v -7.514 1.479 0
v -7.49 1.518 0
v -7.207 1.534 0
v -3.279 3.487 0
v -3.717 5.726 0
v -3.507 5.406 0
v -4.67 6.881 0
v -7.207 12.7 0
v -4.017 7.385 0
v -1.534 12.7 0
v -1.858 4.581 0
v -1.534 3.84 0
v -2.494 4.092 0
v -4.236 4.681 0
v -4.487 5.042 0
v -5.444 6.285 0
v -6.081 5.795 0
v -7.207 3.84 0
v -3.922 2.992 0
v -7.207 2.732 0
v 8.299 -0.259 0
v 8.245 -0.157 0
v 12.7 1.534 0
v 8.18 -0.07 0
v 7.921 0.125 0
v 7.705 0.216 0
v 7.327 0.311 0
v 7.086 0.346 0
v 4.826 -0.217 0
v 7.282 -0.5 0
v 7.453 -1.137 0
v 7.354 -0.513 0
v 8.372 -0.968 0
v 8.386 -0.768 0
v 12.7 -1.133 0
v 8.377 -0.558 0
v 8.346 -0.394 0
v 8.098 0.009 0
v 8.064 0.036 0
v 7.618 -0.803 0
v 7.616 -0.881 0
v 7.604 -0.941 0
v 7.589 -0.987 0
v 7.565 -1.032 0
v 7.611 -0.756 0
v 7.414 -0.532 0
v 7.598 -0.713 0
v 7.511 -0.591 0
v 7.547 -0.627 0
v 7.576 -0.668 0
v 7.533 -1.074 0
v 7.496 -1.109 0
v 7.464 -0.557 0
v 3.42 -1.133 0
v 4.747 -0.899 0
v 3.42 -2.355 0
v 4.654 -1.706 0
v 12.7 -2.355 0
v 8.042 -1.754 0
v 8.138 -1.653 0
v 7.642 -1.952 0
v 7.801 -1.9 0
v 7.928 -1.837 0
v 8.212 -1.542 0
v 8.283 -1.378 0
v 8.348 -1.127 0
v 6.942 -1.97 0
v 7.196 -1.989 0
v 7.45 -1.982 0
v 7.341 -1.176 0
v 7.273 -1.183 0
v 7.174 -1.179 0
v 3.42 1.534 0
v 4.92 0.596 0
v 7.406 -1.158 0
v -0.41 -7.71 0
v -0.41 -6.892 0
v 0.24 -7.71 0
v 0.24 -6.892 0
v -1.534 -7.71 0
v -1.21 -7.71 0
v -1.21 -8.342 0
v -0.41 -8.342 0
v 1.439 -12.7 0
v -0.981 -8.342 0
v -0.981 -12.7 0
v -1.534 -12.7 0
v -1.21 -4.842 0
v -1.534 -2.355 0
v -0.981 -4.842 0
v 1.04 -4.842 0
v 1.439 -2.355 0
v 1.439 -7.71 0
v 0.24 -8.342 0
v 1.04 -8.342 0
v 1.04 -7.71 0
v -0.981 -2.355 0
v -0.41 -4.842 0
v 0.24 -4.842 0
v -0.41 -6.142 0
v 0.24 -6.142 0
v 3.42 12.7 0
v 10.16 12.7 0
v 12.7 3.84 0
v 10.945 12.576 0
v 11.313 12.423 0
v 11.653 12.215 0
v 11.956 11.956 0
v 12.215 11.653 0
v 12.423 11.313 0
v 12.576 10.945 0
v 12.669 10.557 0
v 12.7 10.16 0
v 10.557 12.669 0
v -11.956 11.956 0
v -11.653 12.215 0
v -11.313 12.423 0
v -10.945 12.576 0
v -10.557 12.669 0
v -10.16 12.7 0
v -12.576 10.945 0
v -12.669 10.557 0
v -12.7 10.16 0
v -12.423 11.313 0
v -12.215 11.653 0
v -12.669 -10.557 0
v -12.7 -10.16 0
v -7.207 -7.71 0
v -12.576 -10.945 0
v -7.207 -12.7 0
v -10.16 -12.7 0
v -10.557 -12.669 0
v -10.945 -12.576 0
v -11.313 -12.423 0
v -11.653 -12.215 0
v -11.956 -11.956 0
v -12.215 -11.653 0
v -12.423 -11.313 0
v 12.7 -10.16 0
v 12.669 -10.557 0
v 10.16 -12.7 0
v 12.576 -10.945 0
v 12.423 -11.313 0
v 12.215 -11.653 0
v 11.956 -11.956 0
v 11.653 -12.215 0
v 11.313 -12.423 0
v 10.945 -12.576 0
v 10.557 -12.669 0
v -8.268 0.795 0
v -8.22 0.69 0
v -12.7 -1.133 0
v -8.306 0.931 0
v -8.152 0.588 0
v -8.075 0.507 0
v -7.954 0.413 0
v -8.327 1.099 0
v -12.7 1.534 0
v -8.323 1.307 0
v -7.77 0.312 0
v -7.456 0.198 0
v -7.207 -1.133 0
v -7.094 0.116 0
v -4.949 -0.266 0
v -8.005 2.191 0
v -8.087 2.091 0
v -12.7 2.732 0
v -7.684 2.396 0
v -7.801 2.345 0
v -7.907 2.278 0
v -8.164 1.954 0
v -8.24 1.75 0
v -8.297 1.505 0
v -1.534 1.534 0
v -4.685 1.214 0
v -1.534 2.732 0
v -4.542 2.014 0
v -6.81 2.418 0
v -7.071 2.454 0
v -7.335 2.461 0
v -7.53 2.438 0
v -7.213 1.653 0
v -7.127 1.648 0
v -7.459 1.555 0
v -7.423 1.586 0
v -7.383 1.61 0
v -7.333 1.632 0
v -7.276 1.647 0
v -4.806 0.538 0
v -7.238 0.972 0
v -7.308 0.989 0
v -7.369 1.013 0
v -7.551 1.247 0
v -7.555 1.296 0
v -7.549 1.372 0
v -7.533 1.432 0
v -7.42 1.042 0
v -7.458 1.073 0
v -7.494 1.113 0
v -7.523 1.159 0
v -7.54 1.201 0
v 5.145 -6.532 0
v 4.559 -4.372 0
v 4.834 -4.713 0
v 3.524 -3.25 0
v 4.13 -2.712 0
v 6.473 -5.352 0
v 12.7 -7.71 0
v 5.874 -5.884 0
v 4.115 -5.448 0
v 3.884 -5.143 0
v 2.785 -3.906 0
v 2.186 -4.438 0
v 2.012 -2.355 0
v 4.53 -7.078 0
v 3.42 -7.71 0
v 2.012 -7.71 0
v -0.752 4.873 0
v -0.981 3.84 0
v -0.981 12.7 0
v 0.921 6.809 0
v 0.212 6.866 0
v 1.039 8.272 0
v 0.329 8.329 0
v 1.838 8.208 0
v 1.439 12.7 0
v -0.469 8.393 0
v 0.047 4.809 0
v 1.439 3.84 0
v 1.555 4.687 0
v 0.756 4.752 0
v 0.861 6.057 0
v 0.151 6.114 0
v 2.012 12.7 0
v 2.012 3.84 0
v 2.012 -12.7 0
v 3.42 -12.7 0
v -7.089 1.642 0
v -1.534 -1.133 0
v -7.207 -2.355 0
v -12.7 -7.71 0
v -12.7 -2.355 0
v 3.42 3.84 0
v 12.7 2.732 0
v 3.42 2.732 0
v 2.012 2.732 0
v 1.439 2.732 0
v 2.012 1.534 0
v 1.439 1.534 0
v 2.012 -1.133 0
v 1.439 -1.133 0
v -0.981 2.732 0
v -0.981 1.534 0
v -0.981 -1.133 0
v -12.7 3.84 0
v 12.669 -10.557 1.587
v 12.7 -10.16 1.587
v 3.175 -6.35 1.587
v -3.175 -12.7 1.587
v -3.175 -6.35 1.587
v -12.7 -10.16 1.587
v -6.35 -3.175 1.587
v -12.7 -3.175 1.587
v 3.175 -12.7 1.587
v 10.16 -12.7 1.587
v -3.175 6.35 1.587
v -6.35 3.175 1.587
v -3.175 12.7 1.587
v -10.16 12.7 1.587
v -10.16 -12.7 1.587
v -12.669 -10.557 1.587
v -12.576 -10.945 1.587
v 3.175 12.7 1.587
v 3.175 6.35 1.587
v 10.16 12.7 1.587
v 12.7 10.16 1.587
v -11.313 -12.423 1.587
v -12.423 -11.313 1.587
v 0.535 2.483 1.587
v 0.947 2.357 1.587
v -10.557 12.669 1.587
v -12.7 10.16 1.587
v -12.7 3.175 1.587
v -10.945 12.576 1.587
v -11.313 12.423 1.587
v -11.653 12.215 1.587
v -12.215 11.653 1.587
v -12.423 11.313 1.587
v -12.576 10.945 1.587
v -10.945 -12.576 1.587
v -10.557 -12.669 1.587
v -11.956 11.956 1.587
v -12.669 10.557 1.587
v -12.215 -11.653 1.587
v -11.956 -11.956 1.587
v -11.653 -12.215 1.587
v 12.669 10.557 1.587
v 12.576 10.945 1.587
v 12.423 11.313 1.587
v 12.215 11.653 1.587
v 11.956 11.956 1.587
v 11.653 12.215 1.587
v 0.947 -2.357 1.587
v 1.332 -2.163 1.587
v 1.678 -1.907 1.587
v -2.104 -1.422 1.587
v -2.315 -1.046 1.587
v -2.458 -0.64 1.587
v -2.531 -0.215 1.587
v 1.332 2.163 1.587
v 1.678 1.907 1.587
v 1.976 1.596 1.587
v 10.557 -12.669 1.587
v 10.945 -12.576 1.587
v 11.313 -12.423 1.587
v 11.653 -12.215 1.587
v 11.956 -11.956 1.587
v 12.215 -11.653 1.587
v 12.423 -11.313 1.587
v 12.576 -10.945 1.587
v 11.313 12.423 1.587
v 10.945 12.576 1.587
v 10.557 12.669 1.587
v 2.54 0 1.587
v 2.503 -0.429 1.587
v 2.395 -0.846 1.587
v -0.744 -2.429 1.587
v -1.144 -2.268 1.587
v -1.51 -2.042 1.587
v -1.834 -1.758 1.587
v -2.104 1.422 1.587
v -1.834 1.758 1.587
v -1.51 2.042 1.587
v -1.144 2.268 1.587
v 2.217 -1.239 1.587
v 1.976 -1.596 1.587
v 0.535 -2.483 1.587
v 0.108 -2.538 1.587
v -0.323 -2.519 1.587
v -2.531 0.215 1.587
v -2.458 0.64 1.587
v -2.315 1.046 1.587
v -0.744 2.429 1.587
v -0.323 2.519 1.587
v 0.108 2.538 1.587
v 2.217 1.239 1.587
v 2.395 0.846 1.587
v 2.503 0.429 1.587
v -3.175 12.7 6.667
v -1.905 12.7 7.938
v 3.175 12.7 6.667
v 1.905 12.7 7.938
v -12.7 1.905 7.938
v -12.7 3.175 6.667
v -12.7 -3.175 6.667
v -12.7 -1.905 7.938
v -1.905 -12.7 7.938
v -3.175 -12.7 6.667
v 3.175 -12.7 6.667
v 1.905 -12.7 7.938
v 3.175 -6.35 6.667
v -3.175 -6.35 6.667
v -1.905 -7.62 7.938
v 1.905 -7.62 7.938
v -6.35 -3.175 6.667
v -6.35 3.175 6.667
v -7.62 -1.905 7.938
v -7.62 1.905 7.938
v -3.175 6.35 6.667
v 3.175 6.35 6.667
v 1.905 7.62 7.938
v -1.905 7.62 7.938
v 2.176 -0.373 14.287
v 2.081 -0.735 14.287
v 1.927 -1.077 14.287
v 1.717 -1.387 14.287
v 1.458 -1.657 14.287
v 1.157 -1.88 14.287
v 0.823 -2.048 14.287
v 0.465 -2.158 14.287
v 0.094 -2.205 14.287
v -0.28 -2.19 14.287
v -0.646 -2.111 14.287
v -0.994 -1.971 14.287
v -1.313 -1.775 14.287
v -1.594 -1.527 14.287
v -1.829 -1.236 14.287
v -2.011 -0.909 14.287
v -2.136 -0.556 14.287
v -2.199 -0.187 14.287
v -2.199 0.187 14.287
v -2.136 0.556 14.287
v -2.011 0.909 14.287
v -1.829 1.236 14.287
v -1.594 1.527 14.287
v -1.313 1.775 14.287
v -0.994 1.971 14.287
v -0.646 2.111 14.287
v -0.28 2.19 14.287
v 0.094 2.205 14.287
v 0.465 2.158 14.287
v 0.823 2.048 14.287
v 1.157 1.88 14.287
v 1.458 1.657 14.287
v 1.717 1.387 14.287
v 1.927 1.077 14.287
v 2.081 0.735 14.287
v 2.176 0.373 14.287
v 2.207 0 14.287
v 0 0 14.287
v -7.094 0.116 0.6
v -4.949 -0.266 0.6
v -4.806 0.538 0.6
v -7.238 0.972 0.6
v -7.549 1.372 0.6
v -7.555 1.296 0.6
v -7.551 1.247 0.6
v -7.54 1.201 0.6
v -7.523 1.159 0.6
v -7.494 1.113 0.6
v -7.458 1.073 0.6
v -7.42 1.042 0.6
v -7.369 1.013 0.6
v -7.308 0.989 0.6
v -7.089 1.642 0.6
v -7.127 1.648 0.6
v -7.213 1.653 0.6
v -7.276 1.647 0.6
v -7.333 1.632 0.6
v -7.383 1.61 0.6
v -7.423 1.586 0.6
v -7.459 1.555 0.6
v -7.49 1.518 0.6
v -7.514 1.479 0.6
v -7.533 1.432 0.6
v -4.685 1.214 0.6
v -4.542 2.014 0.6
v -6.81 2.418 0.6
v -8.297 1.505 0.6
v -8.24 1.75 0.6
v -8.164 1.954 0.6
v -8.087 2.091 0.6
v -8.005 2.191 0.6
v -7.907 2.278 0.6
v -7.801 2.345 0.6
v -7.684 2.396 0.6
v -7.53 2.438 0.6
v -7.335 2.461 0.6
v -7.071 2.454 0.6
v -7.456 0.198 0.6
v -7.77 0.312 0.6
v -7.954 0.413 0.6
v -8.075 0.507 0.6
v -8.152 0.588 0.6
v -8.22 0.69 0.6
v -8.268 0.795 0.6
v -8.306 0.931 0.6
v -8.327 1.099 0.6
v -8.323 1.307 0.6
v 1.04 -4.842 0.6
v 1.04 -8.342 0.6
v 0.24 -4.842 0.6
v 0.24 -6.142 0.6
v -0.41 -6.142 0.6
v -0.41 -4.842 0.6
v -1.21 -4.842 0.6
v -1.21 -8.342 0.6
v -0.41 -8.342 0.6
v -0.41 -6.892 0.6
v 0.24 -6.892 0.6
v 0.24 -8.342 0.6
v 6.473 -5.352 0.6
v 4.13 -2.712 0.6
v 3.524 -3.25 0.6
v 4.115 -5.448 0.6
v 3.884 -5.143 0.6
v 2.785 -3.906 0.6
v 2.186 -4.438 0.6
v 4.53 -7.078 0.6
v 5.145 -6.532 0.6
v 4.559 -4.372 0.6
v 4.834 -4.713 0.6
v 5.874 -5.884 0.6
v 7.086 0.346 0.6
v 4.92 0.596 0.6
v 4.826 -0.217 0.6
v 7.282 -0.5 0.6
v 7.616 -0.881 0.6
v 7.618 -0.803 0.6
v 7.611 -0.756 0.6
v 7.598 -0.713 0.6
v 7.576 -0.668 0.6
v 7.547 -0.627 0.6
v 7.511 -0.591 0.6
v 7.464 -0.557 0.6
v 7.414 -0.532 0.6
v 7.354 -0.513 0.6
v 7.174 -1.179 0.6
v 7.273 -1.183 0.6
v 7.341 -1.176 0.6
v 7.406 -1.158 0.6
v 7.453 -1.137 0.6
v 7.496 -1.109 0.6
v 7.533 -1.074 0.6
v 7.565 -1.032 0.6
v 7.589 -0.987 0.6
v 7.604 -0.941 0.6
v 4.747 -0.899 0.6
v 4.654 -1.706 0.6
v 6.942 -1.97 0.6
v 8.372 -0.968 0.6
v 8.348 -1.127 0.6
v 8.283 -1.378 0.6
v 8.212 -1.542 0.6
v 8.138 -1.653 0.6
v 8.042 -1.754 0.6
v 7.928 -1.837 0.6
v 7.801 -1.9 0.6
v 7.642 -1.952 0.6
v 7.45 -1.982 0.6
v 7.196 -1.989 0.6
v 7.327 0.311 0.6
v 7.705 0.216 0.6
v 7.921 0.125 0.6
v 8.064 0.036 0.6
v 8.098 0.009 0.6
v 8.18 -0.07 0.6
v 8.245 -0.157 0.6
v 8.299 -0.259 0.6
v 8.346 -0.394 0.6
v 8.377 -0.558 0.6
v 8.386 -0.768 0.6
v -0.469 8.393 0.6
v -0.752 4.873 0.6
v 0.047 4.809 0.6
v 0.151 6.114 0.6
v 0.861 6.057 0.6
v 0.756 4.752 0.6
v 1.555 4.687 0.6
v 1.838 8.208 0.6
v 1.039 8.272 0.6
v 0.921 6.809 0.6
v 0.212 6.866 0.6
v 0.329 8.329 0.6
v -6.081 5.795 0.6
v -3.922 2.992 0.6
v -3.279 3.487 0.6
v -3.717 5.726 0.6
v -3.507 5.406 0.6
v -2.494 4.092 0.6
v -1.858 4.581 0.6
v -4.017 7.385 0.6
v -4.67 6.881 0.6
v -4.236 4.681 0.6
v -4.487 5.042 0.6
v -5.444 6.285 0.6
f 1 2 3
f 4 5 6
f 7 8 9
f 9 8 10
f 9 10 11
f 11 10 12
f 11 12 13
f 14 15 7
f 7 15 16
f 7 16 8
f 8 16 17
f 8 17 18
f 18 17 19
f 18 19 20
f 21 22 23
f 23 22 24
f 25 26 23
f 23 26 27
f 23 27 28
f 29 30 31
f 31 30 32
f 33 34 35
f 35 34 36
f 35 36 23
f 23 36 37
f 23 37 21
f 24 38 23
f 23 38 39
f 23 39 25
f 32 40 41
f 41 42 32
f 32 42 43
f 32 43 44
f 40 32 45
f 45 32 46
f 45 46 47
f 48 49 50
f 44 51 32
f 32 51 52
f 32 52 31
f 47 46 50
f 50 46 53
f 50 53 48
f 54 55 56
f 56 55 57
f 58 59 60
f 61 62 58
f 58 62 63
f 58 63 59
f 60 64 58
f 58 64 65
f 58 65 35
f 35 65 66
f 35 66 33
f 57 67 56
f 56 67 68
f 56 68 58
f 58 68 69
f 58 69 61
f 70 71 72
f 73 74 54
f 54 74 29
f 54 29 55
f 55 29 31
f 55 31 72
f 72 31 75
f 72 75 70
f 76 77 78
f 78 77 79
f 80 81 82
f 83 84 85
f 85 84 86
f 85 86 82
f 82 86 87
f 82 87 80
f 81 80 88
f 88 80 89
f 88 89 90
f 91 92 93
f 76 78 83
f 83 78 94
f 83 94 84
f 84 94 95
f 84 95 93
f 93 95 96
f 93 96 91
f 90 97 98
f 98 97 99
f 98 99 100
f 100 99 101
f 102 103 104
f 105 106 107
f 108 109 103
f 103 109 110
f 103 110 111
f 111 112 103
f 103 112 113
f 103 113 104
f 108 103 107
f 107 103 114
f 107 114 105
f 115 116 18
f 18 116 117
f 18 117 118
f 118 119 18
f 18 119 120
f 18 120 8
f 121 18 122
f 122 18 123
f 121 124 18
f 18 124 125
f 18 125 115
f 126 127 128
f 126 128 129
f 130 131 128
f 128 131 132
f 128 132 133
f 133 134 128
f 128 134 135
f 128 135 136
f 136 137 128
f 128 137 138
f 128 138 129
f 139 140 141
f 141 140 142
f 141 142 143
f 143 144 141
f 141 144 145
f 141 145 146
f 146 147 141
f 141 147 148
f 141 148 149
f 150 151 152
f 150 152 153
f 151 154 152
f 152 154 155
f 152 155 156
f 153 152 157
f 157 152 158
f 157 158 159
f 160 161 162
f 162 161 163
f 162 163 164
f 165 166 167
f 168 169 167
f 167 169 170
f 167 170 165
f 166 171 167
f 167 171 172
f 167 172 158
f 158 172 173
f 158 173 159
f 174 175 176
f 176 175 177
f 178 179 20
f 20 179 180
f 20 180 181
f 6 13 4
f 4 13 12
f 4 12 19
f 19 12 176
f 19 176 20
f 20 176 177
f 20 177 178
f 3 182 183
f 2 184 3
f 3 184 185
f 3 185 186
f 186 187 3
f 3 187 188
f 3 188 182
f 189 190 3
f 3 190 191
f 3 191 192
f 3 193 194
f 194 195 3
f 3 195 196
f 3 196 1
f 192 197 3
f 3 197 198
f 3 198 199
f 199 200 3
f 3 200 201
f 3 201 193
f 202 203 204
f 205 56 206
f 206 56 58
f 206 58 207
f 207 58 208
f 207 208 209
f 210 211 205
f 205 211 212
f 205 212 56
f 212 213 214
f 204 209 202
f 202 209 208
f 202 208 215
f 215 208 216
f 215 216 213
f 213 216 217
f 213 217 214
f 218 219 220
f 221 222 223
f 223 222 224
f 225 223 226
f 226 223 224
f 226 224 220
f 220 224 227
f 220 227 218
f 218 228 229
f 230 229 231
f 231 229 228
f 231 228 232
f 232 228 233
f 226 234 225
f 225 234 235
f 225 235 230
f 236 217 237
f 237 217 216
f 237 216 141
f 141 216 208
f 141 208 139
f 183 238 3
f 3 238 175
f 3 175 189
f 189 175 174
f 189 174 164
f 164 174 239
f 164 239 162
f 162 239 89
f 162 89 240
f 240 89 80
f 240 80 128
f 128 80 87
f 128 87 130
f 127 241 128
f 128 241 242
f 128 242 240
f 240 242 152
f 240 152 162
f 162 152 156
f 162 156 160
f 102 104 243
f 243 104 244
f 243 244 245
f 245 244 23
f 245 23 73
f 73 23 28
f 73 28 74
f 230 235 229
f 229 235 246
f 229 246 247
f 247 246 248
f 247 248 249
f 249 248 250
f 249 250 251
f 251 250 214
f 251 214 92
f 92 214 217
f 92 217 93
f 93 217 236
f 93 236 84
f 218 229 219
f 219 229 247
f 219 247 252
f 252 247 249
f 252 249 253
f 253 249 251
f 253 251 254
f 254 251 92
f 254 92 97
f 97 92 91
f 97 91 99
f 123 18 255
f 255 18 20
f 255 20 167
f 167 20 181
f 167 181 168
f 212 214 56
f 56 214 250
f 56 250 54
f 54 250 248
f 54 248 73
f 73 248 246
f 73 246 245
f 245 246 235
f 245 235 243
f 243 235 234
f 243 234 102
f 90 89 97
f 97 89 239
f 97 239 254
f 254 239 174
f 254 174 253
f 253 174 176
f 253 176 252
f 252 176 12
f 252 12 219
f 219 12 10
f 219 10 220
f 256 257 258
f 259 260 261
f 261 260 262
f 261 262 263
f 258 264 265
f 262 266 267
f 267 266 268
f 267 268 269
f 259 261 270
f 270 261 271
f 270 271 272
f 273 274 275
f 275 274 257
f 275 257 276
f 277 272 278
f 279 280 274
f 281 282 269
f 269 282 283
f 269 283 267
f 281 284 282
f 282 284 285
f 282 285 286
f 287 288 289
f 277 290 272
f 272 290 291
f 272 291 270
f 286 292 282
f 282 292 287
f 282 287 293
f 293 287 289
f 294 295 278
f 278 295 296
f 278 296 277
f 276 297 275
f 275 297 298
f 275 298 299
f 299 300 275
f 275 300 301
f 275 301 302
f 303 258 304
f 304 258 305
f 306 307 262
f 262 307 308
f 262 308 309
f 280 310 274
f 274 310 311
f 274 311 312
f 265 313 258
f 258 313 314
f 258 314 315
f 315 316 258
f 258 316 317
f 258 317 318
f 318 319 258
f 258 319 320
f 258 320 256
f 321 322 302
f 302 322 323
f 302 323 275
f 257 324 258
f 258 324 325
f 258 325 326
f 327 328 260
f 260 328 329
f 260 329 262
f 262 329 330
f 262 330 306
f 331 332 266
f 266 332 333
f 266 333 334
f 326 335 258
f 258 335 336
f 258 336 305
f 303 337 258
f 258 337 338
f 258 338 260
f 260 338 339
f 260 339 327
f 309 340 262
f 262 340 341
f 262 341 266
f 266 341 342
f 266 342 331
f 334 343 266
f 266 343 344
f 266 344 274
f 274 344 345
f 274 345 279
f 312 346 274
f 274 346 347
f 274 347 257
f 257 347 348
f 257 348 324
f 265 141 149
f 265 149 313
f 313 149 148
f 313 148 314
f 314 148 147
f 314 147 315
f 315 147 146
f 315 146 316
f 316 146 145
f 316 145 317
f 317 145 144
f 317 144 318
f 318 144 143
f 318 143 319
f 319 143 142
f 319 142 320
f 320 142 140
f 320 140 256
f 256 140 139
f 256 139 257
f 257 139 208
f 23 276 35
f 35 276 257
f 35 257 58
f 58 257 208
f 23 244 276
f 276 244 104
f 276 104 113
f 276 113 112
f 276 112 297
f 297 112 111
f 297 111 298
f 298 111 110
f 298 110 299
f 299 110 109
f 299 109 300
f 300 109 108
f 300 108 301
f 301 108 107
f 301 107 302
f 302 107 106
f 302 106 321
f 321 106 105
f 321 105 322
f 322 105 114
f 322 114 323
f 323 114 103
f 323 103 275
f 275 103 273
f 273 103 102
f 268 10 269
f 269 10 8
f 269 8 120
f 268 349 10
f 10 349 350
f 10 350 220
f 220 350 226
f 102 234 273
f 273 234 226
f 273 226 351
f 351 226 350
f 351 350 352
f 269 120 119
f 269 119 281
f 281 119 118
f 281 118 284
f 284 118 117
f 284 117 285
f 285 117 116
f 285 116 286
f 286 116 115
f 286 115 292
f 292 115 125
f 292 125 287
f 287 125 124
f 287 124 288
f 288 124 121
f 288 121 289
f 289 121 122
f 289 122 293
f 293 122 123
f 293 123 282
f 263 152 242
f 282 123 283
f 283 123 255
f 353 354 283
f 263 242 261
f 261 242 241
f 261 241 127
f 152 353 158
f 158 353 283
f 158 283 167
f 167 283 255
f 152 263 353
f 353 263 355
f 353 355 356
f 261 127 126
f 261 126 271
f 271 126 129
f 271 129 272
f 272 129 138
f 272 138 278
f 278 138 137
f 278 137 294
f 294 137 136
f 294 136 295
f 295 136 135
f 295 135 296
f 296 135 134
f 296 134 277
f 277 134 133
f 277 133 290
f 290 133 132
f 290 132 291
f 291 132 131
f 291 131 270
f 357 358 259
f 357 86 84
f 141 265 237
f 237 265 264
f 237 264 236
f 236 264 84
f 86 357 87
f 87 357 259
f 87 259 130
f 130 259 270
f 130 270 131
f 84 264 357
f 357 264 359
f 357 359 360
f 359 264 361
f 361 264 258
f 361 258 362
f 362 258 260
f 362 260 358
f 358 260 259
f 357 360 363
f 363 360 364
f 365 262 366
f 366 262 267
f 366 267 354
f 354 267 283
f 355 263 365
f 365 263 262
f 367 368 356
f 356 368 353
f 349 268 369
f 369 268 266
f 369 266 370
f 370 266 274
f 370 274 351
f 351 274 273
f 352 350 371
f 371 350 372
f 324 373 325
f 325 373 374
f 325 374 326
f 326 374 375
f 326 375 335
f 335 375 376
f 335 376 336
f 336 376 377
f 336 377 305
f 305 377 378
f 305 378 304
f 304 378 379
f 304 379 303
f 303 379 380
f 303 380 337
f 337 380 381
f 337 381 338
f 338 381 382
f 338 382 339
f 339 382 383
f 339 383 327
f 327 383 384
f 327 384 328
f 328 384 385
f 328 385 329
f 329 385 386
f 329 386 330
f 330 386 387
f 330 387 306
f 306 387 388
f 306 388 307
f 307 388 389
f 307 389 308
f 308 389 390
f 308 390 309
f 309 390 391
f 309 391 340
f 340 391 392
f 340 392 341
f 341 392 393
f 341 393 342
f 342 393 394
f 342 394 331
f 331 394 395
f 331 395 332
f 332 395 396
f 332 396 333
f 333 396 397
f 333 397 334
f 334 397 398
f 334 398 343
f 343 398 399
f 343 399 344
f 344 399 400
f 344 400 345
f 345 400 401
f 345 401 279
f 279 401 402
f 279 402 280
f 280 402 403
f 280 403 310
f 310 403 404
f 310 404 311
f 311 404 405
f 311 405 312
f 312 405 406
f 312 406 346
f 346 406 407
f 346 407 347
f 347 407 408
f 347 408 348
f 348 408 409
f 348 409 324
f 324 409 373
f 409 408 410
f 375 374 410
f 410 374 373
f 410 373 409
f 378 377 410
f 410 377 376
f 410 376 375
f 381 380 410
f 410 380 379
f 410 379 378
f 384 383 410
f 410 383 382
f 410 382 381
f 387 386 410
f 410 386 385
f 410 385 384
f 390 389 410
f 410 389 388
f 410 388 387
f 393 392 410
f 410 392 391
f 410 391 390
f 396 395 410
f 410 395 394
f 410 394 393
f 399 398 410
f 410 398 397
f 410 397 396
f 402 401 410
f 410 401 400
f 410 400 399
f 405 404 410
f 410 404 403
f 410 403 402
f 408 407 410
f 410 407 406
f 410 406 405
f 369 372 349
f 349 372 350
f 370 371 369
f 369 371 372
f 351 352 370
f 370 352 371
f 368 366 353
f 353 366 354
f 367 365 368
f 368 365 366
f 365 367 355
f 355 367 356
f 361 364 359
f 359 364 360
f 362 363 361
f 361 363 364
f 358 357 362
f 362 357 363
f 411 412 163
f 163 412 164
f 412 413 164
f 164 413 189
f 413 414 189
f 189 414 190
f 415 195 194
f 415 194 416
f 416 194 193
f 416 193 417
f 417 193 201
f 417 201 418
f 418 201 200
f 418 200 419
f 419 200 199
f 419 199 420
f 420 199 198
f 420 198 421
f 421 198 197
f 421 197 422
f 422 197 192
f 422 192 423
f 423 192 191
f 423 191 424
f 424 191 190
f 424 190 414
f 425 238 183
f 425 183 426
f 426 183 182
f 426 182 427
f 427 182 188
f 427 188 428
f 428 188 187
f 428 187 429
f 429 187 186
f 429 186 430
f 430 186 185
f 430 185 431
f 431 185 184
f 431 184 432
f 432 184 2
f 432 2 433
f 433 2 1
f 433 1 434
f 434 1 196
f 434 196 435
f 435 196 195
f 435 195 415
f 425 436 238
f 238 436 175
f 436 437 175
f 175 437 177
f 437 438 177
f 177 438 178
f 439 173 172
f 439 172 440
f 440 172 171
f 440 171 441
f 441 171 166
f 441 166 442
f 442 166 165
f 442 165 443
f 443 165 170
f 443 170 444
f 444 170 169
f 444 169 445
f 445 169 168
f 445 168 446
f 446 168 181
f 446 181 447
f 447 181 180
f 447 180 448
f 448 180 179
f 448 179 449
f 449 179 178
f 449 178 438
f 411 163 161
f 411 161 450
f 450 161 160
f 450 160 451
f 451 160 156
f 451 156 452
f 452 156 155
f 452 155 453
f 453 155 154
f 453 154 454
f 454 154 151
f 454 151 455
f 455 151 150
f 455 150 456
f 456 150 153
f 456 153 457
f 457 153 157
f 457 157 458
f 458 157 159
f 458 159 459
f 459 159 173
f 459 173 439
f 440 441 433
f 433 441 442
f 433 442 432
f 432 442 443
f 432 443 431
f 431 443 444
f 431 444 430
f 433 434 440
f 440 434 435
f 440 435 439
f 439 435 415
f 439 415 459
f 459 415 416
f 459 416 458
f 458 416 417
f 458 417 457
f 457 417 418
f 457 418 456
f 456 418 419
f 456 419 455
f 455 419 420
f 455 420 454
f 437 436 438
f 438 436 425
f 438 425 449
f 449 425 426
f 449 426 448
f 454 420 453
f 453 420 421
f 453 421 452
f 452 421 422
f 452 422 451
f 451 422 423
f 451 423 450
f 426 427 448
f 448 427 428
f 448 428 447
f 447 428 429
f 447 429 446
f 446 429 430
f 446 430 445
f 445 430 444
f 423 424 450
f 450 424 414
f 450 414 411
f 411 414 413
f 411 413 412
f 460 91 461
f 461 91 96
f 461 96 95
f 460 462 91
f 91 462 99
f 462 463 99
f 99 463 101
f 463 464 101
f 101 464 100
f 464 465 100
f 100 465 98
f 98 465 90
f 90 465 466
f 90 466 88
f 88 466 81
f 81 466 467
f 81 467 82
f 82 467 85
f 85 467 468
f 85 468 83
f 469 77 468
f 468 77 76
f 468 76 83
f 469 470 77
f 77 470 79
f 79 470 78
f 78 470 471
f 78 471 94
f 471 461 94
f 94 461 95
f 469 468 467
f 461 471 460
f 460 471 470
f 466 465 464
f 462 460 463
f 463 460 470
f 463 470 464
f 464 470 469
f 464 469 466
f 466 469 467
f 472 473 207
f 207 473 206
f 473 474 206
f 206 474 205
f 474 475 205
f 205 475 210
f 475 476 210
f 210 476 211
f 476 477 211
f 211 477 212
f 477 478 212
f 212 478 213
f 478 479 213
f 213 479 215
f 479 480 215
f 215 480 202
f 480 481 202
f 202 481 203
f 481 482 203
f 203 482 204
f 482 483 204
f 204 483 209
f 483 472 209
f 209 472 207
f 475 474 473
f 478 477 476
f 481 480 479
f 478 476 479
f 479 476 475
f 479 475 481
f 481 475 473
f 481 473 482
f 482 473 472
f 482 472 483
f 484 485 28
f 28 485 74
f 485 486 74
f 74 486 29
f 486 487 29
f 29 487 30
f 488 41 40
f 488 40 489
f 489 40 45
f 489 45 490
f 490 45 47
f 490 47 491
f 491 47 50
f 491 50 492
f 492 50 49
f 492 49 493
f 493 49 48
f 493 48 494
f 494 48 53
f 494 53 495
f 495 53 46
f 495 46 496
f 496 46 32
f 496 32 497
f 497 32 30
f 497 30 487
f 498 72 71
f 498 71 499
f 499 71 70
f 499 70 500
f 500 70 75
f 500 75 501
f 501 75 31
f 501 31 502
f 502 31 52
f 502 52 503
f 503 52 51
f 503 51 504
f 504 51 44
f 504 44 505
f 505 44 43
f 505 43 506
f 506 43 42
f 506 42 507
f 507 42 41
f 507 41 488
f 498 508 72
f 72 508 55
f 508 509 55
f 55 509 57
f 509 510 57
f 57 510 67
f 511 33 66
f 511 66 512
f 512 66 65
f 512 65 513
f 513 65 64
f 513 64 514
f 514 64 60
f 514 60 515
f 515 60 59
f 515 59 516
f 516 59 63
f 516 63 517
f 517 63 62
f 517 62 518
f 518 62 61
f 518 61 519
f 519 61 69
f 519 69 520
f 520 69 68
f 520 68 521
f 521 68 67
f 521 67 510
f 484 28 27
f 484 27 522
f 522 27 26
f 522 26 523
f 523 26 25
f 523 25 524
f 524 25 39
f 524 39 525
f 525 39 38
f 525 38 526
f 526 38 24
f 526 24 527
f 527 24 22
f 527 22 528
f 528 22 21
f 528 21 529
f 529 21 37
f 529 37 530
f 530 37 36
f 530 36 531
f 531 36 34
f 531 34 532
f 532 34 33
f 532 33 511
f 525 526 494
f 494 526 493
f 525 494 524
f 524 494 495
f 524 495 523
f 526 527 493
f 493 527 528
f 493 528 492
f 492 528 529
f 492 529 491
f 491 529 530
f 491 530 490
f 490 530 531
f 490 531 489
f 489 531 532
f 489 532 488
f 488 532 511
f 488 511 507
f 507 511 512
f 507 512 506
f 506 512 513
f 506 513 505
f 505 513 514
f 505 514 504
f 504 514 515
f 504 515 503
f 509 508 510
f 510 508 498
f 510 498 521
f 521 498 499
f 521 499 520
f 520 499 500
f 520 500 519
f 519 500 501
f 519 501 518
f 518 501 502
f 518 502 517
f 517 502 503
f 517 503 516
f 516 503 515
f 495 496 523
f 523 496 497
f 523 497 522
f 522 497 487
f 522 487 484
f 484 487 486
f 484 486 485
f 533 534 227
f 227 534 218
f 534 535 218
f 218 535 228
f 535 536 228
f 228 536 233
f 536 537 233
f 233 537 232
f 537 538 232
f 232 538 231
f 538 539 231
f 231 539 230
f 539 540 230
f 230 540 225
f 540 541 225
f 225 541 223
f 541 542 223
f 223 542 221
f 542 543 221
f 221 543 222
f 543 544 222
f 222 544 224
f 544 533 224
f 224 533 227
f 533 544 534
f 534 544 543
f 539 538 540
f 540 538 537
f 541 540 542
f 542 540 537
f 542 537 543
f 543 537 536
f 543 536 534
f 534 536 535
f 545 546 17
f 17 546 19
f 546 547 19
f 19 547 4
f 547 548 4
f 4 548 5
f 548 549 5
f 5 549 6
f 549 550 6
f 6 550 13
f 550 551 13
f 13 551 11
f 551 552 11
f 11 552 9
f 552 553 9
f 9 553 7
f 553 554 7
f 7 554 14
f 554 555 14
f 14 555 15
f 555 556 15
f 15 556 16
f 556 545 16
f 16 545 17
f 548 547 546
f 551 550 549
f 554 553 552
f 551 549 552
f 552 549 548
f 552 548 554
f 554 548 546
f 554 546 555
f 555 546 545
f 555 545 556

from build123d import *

# Parameters (mm, degrees)
BOSS_EXTRUDE1_DEPTH = 1.5875
SKETCH2_W           = 6.35
SKETCH2_H           = 6.35
BOSS_EXTRUDE3_DEPTH = 6.35
SKETCH2_4_R         = 2.54
BOSS_EXTRUDE4_DEPTH = 12.7
BOSS_EXTRUDE4_TAPER = 1.5
CHAMFER1_SIZE       = 1.27
CUT_EXTRUDE1_DEPTH  = 0.6


with BuildPart() as part:
    # Sketch1 → Boss-Extrude1 (new body)
    with BuildSketch(Plane.XY):
        with BuildLine():
            Line((-10.16, 12.7), (10.16, 12.7))
            ThreePointArc((10.16, 12.7), (11.956051224, 11.956051224), (12.7, 10.16))
            Line((12.7, 10.16), (12.7, -10.16))
            ThreePointArc((12.7, -10.16), (11.956051224, -11.956051224), (10.16, -12.7))
            Line((10.16, -12.7), (-10.16, -12.7))
            ThreePointArc((-10.16, -12.7), (-11.956051224, -11.956051224), (-12.7, -10.16))
            Line((-12.7, -10.16), (-12.7, 10.16))
            ThreePointArc((-12.7, 10.16), (-11.956051224, 11.956051224), (-10.16, 12.7))
        make_face()
    extrude(amount=BOSS_EXTRUDE1_DEPTH)

    # Sketch2 → Boss-Extrude3 (add)
    with BuildSketch(Plane.XY.offset(1.5875)):
        with Locations((0, -9.525)):
            Rectangle(SKETCH2_W, SKETCH2_H)
        with Locations((-9.525, 0)):
            Rectangle(SKETCH2_W, SKETCH2_H)
        with Locations((0, 9.525)):
            Rectangle(SKETCH2_W, SKETCH2_H)
    extrude(amount=BOSS_EXTRUDE3_DEPTH)

    # Sketch2<4> → Boss-Extrude4 (add)
    with BuildSketch(Plane.XY.offset(1.5875)):
        Circle(SKETCH2_4_R)
    extrude(amount=BOSS_EXTRUDE4_DEPTH, taper=BOSS_EXTRUDE4_TAPER)

    # Chamfer1
    chamfer1_edges = [part.edges().sort_by_distance(p)[0] for p in [
        (3.175, -9.525, 7.9375),
        (0, -6.35, 7.9375),
        (-3.175, -9.525, 7.9375),
        (-6.35, 0, 7.9375),
        (-9.525, 3.175, 7.9375),
        (-9.525, -3.175, 7.9375),
        (-3.175, 9.525, 7.9375),
        (0, 6.35, 7.9375),
        (3.175, 9.525, 7.9375),
    ]]
    chamfer(chamfer1_edges, length=CHAMFER1_SIZE)

    # Sketch5 → Cut-Extrude1 (cut)
    with BuildSketch(Plane(origin=(0, 0, 0), x_dir=(-1, 0, 0), z_dir=(0, 0, -1))):
        with BuildLine():
            Line((4.9486325, -0.26640625), (4.80566375, 0.53828125))
            Line((4.80566375, 0.53828125), (7.23847625, 0.971875))
            add(Edge.make_bspline(
                [(7.23847625, 0.971875), (7.265300976, 0.977767208), (7.316553027, 0.98902502), (7.386417313, 1.019177205), (7.445975061, 1.058502989), (7.493162343, 1.108540184), (7.528992616, 1.165738145), (7.550544903, 1.23017609), (7.557529133, 1.300086011), (7.551660972, 1.347437558), (7.5486325, 1.371875)],
                knots=[0, 0, 0, 0, 1.152901184, 2.202764348, 3.180935335, 4.133822457, 5.073078543, 5.997854462, 6.966721939, 8, 8, 8, 8], degree=3))
            add(Edge.make_bspline(
                [(7.5486325, 1.371875), (7.542792734, 1.396646864), (7.531543792, 1.444364066), (7.499884848, 1.509487744), (7.454949308, 1.56317803), (7.398478733, 1.60483656), (7.332490711, 1.634793548), (7.257954774, 1.652000254), (7.175330842, 1.654723907), (7.118865714, 1.646499876), (7.0892575, 1.6421875)],
                knots=[0, 0, 0, 0, 1.012727317, 1.950782296, 2.857509254, 3.77751689, 4.725405478, 5.727859725, 6.808574103, 8, 8, 8, 8], degree=3))
            Line((7.0892575, 1.6421875), (4.68535125, 1.2140625))
            Line((4.68535125, 1.2140625), (4.5423825, 2.0140625))
            Line((4.5423825, 2.0140625), (6.80957, 2.41796875))
            add(Edge.make_bspline(
                [(6.80957, 2.41796875), (6.847301022, 2.424146941), (6.920798591, 2.436181655), (7.028827458, 2.450649053), (7.132077261, 2.459484809), (7.230377946, 2.462125573), (7.323482356, 2.462111249), (7.411390055, 2.455615921), (7.494373236, 2.444838372), (7.572748366, 2.429389837), (7.646448474, 2.408717161), (7.716207008, 2.384988312), (7.781584312, 2.355523785), (7.843339322, 2.322401348), (7.900437373, 2.283618978), (7.954078202, 2.241438319), (8.003198202, 2.194332728), (8.049039105, 2.142989061), (8.091852626, 2.08646838), (8.129838889, 2.022351846), (8.165519605, 1.952395345), (8.198803926, 1.875824466), (8.227849252, 1.79261502), (8.254630893, 1.702985573), (8.278091348, 1.606760444), (8.290616987, 1.539909376), (8.29707, 1.50546875)],
                knots=[0, 0, 0, 0, 1.359771566, 2.6487463, 3.875560241, 5.043152735, 6.145362645, 7.185342953, 8.175634619, 9.120170991, 10.023483318, 10.896369062, 11.738034426, 12.571094417, 13.385408157, 14.189651898, 14.995440776, 15.802293543, 16.635868245, 17.512676209, 18.448819778, 19.4278293, 20.479498143, 21.58131884, 22.753933261, 24, 24, 24, 24], degree=3))
            add(Edge.make_bspline(
                [(8.29707, 1.50546875), (8.305210474, 1.455050803), (8.320925979, 1.357716981), (8.329931619, 1.215241739), (8.328455647, 1.08238611), (8.313760468, 0.959261373), (8.287286964, 0.845690636), (8.249314931, 0.741543137), (8.197917555, 0.647303084), (8.133510725, 0.562431816), (8.055481633, 0.485597873), (7.962511247, 0.415961042), (7.855316021, 0.351113951), (7.732146849, 0.29300798), (7.594525824, 0.238879505), (7.440966494, 0.192076113), (7.272810918, 0.149653692), (7.155016591, 0.127243683), (7.093945, 0.115625)],
                knots=[0, 0, 0, 0, 1.145854088, 2.212116218, 3.200227274, 4.124728484, 4.989683175, 5.812791959, 6.605465325, 7.389991602, 8.19606755, 9.055433262, 9.991834628, 11.003714112, 12.108834738, 13.308838049, 14.604741461, 16, 16, 16, 16], degree=3))
            Line((7.093945, 0.115625), (4.9486325, -0.26640625))
        make_face()
        Polygon((3.922449744, 2.991612413), (3.279480994, 3.486924913), (3.716980994, 5.725987413), (3.506824744, 5.406456163), (2.494324744, 4.091612413), (1.858387244, 4.581456163), (4.016980994, 7.384581163), (4.670105994, 6.881456163), (4.235730994, 4.680674913), (4.487293494, 5.041612413), (5.444324744, 6.284581163), (6.081043494, 5.794737413), align=None)
        Polygon((0.751771392, 4.872631367), (-0.046666108, 4.808568867), (-0.151353608, 6.114037617), (-0.860728608, 6.057006367), (-0.756041108, 4.751537617), (-1.555259858, 4.687475117), (-1.838072358, 8.207787617), (-1.038853608, 8.271850117), (-0.920884858, 6.808568867), (-0.211509858, 6.865600117), (-0.329478608, 8.328881367), (0.468958892, 8.392943867), align=None)
        with BuildLine():
            Line((-4.920123047, 0.595953898), (-4.826373047, -0.216546102))
            Line((-4.826373047, -0.216546102), (-7.281841797, -0.500139852))
            add(Edge.make_bspline(
                [(-7.281841797, -0.500139852), (-7.309101197, -0.504525377), (-7.360946713, -0.512866345), (-7.433457472, -0.537944408), (-7.494816887, -0.575051172), (-7.546014611, -0.621374599), (-7.58371574, -0.677092597), (-7.60964659, -0.739143074), (-7.620413138, -0.808422775), (-7.617655389, -0.855861805), (-7.616216797, -0.880608602)],
                knots=[0, 0, 0, 0, 1.159219096, 2.204755514, 3.2015425, 4.154328068, 5.083365855, 6.006192735, 6.959920939, 8, 8, 8, 8], degree=3))
            add(Edge.make_bspline(
                [(-7.616216797, -0.880608602), (-7.612087451, -0.905893532), (-7.604148383, -0.954506266), (-7.575100674, -1.020839716), (-7.534253977, -1.077316595), (-7.481121861, -1.123145326), (-7.416677768, -1.156966932), (-7.343032738, -1.17758862), (-7.260835581, -1.186561346), (-7.203967434, -1.181637993), (-7.174029297, -1.179046102)],
                knots=[0, 0, 0, 0, 1.017435699, 1.956118989, 2.854725016, 3.774173801, 4.725671501, 5.730437334, 6.805192659, 8, 8, 8, 8], degree=3))
            Line((-7.174029297, -1.179046102), (-4.747466797, -0.898577352))
            Line((-4.747466797, -0.898577352), (-4.653716797, -1.705608602))
            Line((-4.653716797, -1.705608602), (-6.941998047, -1.969671102))
            add(Edge.make_bspline(
                [(-6.941998047, -1.969671102), (-6.979984517, -1.973970995), (-7.054264745, -1.982379176), (-7.163293427, -1.988062587), (-7.26697771, -1.990520486), (-7.365314035, -1.989642819), (-7.458349703, -1.98213365), (-7.546070479, -1.971662701), (-7.628308, -1.956064631), (-7.705372141, -1.935810731), (-7.777531248, -1.910521256), (-7.845471851, -1.881756251), (-7.909354744, -1.849199201), (-7.967768966, -1.810775982), (-8.024153378, -1.77089027), (-8.074289427, -1.724361899), (-8.121150212, -1.674806826), (-8.163586952, -1.620459759), (-8.202165452, -1.560662167), (-8.236382549, -1.494529965), (-8.267543902, -1.42243798), (-8.295950134, -1.344038488), (-8.319549412, -1.258986625), (-8.34078426, -1.167787102), (-8.358911173, -1.070332781), (-8.367350833, -1.002796217), (-8.371685547, -0.968108602)],
                knots=[0, 0, 0, 0, 1.358401368, 2.656271125, 3.878299373, 5.04462664, 6.149164663, 7.193836517, 8.183125754, 9.121533832, 10.023068678, 10.89808339, 11.74255937, 12.566705813, 13.381233575, 14.193707968, 14.992572825, 15.803516984, 16.640452849, 17.518106834, 18.446603811, 19.430292147, 20.479137631, 21.581463121, 22.757809497, 24, 24, 24, 24], degree=3))
            add(Edge.make_bspline(
                [(-8.371685547, -0.968108602), (-8.376692516, -0.917117039), (-8.386333471, -0.818932436), (-8.386759784, -0.675990175), (-8.377418654, -0.543614299), (-8.355773496, -0.421440498), (-8.322080643, -0.309778046), (-8.277818396, -0.20797594), (-8.221146313, -0.116958382), (-8.151436375, -0.036551913), (-8.06887484, 0.035456823), (-7.971669117, 0.099177126), (-7.860478577, 0.157273079), (-7.734332484, 0.208492142), (-7.59306219, 0.252557661), (-7.437233214, 0.290507962), (-7.26667048, 0.322596301), (-7.147559299, 0.337973891), (-7.085748047, 0.345953898)],
                knots=[0, 0, 0, 0, 1.149100472, 2.212600804, 3.203039271, 4.123413217, 4.990373702, 5.81446832, 6.607288663, 7.386227576, 8.193727073, 9.05753109, 9.988014473, 11.004768982, 12.108042928, 13.305595731, 14.601772712, 16, 16, 16, 16], degree=3))
            Line((-7.085748047, 0.345953898), (-4.920123047, 0.595953898))
        make_face()
        Polygon((-4.129712078, -2.712198334), (-3.524243328, -3.249698334), (-4.114868328, -5.448135834), (-3.883618328, -5.143448334), (-2.785180828, -3.905948334), (-2.185962078, -4.437979584), (-4.529712078, -7.077823334), (-5.144555828, -6.531729584), (-4.558618328, -4.371573334), (-4.834399578, -4.712979584), (-5.874243328, -5.884073334), (-6.473462078, -5.352042084), align=None)
        Polygon((-1.040071044, -4.84243991), (-0.240071044, -4.84243991), (-0.240071044, -6.14243991), (0.409928956, -6.14243991), (0.409928956, -4.84243991), (1.209928956, -4.84243991), (1.209928956, -8.34243991), (0.409928956, -8.34243991), (0.409928956, -6.89243991), (-0.240071044, -6.89243991), (-0.240071044, -8.34243991), (-1.040071044, -8.34243991), align=None)
    extrude(amount=-CUT_EXTRUDE1_DEPTH, mode=Mode.SUBTRACT)


solid = part.part
